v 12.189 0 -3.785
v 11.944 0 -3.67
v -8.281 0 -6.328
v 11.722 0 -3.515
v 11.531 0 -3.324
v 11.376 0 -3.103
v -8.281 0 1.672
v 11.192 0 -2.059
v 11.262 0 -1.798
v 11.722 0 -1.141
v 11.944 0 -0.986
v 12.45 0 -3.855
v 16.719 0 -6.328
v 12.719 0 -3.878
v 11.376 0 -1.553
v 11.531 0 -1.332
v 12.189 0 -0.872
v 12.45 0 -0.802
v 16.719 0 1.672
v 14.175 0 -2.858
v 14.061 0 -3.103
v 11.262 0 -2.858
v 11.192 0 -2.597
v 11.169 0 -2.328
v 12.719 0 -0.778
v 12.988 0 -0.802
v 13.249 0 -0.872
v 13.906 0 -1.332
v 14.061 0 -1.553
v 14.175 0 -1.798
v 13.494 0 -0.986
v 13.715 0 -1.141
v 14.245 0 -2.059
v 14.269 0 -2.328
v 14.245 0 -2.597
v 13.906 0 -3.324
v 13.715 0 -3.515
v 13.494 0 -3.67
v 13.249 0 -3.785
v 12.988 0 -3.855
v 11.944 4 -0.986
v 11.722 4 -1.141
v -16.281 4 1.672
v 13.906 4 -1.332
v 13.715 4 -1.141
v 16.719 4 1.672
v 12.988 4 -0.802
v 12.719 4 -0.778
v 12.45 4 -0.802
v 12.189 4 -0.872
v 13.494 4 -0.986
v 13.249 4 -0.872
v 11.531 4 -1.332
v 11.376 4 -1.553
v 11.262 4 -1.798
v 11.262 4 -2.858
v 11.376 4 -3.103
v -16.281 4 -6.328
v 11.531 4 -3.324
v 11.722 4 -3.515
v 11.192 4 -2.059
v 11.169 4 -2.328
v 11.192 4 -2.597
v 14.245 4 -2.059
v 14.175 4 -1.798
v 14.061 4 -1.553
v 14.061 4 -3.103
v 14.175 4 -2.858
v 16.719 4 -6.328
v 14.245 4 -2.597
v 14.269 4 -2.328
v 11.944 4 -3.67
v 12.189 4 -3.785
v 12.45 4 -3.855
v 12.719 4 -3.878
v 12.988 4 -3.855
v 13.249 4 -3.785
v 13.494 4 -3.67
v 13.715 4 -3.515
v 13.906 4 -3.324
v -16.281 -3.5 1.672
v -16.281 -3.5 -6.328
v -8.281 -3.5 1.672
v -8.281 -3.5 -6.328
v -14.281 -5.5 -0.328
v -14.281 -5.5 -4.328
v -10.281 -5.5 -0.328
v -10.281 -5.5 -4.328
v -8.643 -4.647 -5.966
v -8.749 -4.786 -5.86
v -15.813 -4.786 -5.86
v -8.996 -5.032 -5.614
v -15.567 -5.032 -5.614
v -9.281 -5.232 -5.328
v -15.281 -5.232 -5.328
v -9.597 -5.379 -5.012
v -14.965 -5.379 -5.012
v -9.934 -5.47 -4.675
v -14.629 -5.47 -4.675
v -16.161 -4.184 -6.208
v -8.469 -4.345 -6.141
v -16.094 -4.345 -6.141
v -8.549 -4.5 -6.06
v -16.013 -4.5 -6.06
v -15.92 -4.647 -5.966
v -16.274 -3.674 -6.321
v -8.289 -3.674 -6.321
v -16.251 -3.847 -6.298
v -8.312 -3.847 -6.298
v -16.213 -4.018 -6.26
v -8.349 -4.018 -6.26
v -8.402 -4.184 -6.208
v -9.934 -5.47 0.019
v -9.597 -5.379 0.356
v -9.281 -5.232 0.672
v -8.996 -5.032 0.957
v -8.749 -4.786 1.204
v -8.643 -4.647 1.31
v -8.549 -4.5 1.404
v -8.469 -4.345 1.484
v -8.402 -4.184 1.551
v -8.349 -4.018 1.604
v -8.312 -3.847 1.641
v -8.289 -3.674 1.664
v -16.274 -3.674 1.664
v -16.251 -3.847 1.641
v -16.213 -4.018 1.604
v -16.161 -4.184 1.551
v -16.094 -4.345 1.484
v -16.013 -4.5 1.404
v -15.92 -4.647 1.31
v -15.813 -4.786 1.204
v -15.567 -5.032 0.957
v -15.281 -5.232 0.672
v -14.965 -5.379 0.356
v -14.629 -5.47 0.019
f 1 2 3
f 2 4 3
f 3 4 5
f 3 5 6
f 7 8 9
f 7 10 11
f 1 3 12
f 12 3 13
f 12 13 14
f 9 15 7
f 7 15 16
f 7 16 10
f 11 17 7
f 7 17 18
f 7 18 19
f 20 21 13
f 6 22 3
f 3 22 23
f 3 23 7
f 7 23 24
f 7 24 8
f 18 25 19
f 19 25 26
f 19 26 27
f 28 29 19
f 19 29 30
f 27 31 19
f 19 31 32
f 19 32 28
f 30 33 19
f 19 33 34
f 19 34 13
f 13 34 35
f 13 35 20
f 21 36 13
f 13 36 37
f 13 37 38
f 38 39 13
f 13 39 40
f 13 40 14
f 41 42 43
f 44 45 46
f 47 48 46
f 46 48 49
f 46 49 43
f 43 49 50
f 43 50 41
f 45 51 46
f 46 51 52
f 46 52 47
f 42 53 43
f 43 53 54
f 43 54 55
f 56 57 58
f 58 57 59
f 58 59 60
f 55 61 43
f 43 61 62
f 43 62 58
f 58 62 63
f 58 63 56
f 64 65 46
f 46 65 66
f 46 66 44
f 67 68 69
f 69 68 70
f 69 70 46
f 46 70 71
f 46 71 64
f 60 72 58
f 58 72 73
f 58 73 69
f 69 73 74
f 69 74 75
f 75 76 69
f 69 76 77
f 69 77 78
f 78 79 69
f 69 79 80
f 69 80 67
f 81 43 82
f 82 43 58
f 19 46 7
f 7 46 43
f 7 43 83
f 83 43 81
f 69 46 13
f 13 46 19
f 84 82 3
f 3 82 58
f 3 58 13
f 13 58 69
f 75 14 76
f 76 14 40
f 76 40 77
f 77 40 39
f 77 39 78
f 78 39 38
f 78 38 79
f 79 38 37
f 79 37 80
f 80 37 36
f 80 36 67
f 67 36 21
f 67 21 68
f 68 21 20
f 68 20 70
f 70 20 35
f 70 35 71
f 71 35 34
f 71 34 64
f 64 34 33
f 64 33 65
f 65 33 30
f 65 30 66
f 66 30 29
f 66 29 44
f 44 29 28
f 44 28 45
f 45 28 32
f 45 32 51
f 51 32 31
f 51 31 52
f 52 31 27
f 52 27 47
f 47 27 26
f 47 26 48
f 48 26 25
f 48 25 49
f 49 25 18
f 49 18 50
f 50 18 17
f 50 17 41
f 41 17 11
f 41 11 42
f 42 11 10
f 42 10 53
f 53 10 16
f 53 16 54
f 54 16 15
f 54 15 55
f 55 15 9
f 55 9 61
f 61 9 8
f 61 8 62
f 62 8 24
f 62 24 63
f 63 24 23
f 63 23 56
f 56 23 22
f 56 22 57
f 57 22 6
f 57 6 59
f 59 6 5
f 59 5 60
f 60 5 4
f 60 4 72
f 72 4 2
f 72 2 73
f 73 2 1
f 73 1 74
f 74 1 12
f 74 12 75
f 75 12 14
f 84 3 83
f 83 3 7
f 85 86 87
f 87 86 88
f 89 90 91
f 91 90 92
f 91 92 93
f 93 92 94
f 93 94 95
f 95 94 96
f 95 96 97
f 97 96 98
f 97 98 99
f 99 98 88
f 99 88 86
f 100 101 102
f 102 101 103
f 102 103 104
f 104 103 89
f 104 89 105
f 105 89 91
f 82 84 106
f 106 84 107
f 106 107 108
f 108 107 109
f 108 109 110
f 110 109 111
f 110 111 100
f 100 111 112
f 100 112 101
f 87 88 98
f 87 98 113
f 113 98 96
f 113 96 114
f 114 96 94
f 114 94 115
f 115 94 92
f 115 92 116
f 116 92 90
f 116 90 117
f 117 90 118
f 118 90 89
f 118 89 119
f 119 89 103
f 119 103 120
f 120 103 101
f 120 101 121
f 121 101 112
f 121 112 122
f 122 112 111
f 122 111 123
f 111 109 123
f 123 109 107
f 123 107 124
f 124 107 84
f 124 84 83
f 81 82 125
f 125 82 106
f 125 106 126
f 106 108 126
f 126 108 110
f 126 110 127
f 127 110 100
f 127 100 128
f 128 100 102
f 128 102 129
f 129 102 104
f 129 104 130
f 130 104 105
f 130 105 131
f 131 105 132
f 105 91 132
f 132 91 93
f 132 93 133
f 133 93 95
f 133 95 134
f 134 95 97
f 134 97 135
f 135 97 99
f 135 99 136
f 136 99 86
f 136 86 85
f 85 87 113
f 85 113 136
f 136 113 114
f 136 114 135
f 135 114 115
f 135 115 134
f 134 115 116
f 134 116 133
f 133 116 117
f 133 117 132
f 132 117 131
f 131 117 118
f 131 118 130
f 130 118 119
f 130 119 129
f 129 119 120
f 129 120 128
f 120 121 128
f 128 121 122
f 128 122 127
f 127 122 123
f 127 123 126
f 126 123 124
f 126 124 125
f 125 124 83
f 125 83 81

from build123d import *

# Parameters (mm, degrees)
SKETCH1_W           = 33
SKETCH1_H           = 8
SKETCH1_R           = 1.55
BOSS_EXTRUDE1_DEPTH = 4
SKETCH3_W           = 8
SKETCH3_H           = 8
BOSS_EXTRUDE2_DEPTH = 5.5
FILLET1_R           = 2


with BuildPart() as part:
    # Sketch1 → Boss-Extrude1 (new body)
    with BuildSketch(Plane(origin=(0, 0, 0), x_dir=(1, 0, 0), z_dir=(0, 1, 0))):
        with Locations((0.21875, 2.328125)):
            Rectangle(SKETCH1_W, SKETCH1_H)
        with Locations(Location((12.71875, 2.328125, 0), (0, 0, 270))):
            Circle(SKETCH1_R, mode=Mode.SUBTRACT)
    extrude(amount=BOSS_EXTRUDE1_DEPTH)

    # Sketch3 → Boss-Extrude2 (add)
    with BuildSketch(Plane.XZ):
        with Locations((-12.28125, -2.328125)):
            Rectangle(SKETCH3_W, SKETCH3_H)
    extrude(amount=BOSS_EXTRUDE2_DEPTH)

    # Fillet1
    fillet1_edges = [part.edges().sort_by_distance(p)[0] for p in [
        (-16.28125, -5.5, -2.328125),
        (-12.28125, -5.5, -6.328125),
        (-8.28125, -5.5, -2.328125),
        (-12.28125, -5.5, 1.671875),
    ]]
    fillet(fillet1_edges, radius=FILLET1_R)


solid = part.part
